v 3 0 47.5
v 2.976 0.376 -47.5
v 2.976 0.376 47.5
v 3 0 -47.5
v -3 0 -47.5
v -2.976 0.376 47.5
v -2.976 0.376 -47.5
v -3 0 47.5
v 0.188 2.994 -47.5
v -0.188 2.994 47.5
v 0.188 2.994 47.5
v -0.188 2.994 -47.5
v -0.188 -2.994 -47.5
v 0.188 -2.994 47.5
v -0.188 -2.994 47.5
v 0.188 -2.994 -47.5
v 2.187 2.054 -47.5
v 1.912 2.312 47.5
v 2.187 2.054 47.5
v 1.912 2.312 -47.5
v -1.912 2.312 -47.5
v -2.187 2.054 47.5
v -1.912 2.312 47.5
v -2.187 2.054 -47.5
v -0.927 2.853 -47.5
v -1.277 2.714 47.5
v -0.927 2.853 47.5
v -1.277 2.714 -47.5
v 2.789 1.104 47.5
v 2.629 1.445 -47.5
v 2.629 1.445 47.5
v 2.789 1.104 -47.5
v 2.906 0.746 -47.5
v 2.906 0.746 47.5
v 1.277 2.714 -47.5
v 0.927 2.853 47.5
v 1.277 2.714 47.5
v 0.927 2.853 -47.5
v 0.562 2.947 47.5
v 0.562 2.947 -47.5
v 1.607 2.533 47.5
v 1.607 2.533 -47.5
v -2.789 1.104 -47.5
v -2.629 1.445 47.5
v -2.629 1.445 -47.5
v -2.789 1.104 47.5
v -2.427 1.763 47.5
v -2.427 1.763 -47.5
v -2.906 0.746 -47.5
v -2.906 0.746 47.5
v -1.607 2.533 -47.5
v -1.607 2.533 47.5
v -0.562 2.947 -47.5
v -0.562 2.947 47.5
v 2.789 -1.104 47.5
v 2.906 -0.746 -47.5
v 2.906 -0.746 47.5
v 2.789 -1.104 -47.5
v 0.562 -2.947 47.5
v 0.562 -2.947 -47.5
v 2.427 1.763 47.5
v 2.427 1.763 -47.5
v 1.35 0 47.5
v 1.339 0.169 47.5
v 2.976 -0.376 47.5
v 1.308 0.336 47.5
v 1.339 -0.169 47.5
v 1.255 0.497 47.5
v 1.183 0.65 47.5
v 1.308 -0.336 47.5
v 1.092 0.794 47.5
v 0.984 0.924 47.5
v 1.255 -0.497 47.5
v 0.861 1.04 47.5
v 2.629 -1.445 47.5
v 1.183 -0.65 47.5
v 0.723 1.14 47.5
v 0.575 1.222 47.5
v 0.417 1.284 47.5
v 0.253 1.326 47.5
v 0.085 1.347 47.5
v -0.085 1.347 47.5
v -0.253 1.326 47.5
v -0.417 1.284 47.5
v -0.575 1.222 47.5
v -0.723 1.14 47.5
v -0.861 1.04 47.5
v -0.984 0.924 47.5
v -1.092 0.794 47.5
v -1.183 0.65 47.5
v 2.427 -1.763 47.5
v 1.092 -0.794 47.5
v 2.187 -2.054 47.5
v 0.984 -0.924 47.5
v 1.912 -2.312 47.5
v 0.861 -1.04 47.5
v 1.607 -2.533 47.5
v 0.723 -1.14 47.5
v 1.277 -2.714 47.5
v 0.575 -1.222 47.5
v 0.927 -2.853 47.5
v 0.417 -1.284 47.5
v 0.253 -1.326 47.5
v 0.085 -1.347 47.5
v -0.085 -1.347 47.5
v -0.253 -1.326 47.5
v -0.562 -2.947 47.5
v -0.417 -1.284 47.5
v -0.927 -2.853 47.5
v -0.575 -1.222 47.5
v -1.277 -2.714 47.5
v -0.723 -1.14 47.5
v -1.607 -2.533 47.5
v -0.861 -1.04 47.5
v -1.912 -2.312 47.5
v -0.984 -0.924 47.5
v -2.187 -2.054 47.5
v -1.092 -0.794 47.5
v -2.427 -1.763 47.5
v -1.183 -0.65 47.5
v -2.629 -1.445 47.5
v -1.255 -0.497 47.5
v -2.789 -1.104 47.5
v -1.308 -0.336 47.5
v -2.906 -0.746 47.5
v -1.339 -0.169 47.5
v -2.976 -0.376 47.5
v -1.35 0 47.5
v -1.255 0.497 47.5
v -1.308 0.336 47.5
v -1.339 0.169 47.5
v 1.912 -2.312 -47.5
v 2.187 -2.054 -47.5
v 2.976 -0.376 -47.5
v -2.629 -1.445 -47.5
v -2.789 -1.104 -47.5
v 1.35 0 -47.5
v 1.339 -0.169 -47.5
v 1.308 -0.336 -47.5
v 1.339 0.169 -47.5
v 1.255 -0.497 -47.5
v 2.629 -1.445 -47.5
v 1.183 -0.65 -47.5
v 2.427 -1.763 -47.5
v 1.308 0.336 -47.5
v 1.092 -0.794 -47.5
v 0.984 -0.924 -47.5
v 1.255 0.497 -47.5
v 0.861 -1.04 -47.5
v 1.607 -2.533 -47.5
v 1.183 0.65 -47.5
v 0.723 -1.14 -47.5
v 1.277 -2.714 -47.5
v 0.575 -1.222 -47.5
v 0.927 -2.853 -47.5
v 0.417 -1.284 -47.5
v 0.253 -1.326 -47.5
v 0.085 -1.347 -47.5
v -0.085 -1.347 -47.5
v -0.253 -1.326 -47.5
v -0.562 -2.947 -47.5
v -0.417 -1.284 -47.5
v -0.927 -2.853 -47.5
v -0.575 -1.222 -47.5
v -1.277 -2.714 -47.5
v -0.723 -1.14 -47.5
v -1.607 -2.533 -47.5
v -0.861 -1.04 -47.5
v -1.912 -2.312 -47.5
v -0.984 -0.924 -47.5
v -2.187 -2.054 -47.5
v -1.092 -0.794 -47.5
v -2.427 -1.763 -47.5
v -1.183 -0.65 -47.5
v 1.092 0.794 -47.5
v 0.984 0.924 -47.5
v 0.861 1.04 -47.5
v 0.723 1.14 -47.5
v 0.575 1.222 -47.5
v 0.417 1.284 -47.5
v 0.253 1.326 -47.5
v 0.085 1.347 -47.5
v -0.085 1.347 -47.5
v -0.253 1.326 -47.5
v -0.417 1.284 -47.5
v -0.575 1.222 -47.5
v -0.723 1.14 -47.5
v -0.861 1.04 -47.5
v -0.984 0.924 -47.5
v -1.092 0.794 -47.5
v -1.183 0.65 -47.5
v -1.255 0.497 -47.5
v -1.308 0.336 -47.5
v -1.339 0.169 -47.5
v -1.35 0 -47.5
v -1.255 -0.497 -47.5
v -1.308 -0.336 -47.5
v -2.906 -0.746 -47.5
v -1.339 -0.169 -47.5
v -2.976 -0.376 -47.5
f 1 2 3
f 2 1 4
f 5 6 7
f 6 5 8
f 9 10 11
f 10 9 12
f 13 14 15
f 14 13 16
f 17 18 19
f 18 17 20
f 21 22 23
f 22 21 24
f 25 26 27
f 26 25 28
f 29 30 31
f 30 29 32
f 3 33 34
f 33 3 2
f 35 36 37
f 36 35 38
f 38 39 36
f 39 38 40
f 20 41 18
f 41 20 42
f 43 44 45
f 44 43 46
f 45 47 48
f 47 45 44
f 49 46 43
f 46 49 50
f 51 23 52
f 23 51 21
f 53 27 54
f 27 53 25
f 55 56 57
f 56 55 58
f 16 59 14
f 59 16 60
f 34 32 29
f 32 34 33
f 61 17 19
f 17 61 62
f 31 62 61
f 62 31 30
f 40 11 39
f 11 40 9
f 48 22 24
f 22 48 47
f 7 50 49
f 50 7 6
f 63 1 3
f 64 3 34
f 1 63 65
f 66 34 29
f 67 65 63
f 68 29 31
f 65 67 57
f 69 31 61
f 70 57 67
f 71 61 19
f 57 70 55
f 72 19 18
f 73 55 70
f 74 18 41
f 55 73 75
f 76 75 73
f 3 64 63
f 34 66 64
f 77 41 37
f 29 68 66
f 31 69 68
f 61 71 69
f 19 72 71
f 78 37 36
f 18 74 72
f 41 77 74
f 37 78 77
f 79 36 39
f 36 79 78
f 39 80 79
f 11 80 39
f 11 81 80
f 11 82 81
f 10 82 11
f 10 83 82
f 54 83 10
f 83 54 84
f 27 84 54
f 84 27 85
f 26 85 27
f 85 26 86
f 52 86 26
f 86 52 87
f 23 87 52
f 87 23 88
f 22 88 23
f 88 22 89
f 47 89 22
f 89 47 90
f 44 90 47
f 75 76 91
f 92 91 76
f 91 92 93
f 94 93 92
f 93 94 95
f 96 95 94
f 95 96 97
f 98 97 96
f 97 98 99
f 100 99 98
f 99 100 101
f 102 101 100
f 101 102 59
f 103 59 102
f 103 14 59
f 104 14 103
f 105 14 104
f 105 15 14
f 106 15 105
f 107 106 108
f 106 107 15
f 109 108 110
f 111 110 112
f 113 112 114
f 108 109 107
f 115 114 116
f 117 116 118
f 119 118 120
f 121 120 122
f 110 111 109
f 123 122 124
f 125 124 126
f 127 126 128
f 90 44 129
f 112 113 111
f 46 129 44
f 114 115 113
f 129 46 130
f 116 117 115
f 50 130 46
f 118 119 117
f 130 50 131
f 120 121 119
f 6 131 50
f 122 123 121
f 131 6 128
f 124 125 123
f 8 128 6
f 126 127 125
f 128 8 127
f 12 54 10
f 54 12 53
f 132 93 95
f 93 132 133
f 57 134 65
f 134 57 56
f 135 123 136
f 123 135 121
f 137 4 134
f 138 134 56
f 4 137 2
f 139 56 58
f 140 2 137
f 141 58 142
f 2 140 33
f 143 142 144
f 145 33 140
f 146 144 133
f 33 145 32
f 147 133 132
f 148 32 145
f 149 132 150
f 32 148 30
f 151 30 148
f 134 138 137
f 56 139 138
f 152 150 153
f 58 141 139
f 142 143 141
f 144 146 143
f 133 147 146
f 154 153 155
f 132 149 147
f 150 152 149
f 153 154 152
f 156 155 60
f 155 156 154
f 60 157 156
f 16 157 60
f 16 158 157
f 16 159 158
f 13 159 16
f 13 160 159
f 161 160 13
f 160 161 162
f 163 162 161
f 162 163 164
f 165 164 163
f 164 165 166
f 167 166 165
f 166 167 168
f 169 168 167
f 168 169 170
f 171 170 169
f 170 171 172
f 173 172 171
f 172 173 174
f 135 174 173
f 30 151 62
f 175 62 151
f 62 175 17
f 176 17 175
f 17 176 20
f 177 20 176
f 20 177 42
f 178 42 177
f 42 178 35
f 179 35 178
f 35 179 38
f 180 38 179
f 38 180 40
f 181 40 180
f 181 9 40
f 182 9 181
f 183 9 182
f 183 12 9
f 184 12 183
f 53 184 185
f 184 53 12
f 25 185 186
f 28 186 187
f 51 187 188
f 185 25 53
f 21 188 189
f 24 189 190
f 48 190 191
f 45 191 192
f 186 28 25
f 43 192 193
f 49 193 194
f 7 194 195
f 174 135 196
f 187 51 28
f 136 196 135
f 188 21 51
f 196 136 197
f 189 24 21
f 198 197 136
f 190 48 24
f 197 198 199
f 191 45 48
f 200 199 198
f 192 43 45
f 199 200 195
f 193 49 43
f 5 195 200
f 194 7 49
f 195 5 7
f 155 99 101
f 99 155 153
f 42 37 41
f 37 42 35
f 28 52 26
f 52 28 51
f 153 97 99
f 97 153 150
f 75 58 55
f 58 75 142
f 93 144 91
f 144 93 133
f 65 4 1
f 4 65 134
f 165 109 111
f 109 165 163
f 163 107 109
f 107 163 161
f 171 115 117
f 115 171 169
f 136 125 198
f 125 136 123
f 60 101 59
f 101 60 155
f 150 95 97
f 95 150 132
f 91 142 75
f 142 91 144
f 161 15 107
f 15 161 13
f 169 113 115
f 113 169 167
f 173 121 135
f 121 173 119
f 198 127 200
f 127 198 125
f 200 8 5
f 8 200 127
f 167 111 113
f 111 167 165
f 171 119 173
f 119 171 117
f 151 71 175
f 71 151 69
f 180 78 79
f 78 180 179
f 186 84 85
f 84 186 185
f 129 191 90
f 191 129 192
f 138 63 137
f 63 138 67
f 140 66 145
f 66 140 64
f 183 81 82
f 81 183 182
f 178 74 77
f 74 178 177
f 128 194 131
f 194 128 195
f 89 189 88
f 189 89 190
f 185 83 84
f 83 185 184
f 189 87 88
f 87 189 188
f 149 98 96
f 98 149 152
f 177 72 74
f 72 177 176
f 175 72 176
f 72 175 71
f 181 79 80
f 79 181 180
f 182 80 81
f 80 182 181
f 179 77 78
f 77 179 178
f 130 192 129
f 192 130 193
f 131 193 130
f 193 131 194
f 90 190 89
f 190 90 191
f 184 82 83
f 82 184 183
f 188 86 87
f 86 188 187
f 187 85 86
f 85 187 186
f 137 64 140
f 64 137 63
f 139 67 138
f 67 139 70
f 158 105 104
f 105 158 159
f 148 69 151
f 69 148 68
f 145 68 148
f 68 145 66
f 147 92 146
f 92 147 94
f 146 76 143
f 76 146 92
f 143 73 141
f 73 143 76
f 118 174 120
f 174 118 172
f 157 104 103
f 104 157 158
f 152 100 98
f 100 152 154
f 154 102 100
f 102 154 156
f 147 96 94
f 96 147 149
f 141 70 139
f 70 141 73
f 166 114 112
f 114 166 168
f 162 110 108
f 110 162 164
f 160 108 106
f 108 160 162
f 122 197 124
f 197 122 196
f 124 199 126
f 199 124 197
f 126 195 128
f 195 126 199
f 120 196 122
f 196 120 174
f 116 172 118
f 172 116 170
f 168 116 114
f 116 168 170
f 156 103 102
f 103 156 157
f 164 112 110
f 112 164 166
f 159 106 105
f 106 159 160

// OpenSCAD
$fn = 50;


difference() {
	union() {
		translate(v = [0, 0, -47.5000000000]) {
			cylinder(h = 95, r = 3.0000000000);
		}
	}
	union() {
		translate(v = [0, 0, -100.0000000000]) {
			cylinder(h = 200, r = 1.3500000000);
		}
	}
}
